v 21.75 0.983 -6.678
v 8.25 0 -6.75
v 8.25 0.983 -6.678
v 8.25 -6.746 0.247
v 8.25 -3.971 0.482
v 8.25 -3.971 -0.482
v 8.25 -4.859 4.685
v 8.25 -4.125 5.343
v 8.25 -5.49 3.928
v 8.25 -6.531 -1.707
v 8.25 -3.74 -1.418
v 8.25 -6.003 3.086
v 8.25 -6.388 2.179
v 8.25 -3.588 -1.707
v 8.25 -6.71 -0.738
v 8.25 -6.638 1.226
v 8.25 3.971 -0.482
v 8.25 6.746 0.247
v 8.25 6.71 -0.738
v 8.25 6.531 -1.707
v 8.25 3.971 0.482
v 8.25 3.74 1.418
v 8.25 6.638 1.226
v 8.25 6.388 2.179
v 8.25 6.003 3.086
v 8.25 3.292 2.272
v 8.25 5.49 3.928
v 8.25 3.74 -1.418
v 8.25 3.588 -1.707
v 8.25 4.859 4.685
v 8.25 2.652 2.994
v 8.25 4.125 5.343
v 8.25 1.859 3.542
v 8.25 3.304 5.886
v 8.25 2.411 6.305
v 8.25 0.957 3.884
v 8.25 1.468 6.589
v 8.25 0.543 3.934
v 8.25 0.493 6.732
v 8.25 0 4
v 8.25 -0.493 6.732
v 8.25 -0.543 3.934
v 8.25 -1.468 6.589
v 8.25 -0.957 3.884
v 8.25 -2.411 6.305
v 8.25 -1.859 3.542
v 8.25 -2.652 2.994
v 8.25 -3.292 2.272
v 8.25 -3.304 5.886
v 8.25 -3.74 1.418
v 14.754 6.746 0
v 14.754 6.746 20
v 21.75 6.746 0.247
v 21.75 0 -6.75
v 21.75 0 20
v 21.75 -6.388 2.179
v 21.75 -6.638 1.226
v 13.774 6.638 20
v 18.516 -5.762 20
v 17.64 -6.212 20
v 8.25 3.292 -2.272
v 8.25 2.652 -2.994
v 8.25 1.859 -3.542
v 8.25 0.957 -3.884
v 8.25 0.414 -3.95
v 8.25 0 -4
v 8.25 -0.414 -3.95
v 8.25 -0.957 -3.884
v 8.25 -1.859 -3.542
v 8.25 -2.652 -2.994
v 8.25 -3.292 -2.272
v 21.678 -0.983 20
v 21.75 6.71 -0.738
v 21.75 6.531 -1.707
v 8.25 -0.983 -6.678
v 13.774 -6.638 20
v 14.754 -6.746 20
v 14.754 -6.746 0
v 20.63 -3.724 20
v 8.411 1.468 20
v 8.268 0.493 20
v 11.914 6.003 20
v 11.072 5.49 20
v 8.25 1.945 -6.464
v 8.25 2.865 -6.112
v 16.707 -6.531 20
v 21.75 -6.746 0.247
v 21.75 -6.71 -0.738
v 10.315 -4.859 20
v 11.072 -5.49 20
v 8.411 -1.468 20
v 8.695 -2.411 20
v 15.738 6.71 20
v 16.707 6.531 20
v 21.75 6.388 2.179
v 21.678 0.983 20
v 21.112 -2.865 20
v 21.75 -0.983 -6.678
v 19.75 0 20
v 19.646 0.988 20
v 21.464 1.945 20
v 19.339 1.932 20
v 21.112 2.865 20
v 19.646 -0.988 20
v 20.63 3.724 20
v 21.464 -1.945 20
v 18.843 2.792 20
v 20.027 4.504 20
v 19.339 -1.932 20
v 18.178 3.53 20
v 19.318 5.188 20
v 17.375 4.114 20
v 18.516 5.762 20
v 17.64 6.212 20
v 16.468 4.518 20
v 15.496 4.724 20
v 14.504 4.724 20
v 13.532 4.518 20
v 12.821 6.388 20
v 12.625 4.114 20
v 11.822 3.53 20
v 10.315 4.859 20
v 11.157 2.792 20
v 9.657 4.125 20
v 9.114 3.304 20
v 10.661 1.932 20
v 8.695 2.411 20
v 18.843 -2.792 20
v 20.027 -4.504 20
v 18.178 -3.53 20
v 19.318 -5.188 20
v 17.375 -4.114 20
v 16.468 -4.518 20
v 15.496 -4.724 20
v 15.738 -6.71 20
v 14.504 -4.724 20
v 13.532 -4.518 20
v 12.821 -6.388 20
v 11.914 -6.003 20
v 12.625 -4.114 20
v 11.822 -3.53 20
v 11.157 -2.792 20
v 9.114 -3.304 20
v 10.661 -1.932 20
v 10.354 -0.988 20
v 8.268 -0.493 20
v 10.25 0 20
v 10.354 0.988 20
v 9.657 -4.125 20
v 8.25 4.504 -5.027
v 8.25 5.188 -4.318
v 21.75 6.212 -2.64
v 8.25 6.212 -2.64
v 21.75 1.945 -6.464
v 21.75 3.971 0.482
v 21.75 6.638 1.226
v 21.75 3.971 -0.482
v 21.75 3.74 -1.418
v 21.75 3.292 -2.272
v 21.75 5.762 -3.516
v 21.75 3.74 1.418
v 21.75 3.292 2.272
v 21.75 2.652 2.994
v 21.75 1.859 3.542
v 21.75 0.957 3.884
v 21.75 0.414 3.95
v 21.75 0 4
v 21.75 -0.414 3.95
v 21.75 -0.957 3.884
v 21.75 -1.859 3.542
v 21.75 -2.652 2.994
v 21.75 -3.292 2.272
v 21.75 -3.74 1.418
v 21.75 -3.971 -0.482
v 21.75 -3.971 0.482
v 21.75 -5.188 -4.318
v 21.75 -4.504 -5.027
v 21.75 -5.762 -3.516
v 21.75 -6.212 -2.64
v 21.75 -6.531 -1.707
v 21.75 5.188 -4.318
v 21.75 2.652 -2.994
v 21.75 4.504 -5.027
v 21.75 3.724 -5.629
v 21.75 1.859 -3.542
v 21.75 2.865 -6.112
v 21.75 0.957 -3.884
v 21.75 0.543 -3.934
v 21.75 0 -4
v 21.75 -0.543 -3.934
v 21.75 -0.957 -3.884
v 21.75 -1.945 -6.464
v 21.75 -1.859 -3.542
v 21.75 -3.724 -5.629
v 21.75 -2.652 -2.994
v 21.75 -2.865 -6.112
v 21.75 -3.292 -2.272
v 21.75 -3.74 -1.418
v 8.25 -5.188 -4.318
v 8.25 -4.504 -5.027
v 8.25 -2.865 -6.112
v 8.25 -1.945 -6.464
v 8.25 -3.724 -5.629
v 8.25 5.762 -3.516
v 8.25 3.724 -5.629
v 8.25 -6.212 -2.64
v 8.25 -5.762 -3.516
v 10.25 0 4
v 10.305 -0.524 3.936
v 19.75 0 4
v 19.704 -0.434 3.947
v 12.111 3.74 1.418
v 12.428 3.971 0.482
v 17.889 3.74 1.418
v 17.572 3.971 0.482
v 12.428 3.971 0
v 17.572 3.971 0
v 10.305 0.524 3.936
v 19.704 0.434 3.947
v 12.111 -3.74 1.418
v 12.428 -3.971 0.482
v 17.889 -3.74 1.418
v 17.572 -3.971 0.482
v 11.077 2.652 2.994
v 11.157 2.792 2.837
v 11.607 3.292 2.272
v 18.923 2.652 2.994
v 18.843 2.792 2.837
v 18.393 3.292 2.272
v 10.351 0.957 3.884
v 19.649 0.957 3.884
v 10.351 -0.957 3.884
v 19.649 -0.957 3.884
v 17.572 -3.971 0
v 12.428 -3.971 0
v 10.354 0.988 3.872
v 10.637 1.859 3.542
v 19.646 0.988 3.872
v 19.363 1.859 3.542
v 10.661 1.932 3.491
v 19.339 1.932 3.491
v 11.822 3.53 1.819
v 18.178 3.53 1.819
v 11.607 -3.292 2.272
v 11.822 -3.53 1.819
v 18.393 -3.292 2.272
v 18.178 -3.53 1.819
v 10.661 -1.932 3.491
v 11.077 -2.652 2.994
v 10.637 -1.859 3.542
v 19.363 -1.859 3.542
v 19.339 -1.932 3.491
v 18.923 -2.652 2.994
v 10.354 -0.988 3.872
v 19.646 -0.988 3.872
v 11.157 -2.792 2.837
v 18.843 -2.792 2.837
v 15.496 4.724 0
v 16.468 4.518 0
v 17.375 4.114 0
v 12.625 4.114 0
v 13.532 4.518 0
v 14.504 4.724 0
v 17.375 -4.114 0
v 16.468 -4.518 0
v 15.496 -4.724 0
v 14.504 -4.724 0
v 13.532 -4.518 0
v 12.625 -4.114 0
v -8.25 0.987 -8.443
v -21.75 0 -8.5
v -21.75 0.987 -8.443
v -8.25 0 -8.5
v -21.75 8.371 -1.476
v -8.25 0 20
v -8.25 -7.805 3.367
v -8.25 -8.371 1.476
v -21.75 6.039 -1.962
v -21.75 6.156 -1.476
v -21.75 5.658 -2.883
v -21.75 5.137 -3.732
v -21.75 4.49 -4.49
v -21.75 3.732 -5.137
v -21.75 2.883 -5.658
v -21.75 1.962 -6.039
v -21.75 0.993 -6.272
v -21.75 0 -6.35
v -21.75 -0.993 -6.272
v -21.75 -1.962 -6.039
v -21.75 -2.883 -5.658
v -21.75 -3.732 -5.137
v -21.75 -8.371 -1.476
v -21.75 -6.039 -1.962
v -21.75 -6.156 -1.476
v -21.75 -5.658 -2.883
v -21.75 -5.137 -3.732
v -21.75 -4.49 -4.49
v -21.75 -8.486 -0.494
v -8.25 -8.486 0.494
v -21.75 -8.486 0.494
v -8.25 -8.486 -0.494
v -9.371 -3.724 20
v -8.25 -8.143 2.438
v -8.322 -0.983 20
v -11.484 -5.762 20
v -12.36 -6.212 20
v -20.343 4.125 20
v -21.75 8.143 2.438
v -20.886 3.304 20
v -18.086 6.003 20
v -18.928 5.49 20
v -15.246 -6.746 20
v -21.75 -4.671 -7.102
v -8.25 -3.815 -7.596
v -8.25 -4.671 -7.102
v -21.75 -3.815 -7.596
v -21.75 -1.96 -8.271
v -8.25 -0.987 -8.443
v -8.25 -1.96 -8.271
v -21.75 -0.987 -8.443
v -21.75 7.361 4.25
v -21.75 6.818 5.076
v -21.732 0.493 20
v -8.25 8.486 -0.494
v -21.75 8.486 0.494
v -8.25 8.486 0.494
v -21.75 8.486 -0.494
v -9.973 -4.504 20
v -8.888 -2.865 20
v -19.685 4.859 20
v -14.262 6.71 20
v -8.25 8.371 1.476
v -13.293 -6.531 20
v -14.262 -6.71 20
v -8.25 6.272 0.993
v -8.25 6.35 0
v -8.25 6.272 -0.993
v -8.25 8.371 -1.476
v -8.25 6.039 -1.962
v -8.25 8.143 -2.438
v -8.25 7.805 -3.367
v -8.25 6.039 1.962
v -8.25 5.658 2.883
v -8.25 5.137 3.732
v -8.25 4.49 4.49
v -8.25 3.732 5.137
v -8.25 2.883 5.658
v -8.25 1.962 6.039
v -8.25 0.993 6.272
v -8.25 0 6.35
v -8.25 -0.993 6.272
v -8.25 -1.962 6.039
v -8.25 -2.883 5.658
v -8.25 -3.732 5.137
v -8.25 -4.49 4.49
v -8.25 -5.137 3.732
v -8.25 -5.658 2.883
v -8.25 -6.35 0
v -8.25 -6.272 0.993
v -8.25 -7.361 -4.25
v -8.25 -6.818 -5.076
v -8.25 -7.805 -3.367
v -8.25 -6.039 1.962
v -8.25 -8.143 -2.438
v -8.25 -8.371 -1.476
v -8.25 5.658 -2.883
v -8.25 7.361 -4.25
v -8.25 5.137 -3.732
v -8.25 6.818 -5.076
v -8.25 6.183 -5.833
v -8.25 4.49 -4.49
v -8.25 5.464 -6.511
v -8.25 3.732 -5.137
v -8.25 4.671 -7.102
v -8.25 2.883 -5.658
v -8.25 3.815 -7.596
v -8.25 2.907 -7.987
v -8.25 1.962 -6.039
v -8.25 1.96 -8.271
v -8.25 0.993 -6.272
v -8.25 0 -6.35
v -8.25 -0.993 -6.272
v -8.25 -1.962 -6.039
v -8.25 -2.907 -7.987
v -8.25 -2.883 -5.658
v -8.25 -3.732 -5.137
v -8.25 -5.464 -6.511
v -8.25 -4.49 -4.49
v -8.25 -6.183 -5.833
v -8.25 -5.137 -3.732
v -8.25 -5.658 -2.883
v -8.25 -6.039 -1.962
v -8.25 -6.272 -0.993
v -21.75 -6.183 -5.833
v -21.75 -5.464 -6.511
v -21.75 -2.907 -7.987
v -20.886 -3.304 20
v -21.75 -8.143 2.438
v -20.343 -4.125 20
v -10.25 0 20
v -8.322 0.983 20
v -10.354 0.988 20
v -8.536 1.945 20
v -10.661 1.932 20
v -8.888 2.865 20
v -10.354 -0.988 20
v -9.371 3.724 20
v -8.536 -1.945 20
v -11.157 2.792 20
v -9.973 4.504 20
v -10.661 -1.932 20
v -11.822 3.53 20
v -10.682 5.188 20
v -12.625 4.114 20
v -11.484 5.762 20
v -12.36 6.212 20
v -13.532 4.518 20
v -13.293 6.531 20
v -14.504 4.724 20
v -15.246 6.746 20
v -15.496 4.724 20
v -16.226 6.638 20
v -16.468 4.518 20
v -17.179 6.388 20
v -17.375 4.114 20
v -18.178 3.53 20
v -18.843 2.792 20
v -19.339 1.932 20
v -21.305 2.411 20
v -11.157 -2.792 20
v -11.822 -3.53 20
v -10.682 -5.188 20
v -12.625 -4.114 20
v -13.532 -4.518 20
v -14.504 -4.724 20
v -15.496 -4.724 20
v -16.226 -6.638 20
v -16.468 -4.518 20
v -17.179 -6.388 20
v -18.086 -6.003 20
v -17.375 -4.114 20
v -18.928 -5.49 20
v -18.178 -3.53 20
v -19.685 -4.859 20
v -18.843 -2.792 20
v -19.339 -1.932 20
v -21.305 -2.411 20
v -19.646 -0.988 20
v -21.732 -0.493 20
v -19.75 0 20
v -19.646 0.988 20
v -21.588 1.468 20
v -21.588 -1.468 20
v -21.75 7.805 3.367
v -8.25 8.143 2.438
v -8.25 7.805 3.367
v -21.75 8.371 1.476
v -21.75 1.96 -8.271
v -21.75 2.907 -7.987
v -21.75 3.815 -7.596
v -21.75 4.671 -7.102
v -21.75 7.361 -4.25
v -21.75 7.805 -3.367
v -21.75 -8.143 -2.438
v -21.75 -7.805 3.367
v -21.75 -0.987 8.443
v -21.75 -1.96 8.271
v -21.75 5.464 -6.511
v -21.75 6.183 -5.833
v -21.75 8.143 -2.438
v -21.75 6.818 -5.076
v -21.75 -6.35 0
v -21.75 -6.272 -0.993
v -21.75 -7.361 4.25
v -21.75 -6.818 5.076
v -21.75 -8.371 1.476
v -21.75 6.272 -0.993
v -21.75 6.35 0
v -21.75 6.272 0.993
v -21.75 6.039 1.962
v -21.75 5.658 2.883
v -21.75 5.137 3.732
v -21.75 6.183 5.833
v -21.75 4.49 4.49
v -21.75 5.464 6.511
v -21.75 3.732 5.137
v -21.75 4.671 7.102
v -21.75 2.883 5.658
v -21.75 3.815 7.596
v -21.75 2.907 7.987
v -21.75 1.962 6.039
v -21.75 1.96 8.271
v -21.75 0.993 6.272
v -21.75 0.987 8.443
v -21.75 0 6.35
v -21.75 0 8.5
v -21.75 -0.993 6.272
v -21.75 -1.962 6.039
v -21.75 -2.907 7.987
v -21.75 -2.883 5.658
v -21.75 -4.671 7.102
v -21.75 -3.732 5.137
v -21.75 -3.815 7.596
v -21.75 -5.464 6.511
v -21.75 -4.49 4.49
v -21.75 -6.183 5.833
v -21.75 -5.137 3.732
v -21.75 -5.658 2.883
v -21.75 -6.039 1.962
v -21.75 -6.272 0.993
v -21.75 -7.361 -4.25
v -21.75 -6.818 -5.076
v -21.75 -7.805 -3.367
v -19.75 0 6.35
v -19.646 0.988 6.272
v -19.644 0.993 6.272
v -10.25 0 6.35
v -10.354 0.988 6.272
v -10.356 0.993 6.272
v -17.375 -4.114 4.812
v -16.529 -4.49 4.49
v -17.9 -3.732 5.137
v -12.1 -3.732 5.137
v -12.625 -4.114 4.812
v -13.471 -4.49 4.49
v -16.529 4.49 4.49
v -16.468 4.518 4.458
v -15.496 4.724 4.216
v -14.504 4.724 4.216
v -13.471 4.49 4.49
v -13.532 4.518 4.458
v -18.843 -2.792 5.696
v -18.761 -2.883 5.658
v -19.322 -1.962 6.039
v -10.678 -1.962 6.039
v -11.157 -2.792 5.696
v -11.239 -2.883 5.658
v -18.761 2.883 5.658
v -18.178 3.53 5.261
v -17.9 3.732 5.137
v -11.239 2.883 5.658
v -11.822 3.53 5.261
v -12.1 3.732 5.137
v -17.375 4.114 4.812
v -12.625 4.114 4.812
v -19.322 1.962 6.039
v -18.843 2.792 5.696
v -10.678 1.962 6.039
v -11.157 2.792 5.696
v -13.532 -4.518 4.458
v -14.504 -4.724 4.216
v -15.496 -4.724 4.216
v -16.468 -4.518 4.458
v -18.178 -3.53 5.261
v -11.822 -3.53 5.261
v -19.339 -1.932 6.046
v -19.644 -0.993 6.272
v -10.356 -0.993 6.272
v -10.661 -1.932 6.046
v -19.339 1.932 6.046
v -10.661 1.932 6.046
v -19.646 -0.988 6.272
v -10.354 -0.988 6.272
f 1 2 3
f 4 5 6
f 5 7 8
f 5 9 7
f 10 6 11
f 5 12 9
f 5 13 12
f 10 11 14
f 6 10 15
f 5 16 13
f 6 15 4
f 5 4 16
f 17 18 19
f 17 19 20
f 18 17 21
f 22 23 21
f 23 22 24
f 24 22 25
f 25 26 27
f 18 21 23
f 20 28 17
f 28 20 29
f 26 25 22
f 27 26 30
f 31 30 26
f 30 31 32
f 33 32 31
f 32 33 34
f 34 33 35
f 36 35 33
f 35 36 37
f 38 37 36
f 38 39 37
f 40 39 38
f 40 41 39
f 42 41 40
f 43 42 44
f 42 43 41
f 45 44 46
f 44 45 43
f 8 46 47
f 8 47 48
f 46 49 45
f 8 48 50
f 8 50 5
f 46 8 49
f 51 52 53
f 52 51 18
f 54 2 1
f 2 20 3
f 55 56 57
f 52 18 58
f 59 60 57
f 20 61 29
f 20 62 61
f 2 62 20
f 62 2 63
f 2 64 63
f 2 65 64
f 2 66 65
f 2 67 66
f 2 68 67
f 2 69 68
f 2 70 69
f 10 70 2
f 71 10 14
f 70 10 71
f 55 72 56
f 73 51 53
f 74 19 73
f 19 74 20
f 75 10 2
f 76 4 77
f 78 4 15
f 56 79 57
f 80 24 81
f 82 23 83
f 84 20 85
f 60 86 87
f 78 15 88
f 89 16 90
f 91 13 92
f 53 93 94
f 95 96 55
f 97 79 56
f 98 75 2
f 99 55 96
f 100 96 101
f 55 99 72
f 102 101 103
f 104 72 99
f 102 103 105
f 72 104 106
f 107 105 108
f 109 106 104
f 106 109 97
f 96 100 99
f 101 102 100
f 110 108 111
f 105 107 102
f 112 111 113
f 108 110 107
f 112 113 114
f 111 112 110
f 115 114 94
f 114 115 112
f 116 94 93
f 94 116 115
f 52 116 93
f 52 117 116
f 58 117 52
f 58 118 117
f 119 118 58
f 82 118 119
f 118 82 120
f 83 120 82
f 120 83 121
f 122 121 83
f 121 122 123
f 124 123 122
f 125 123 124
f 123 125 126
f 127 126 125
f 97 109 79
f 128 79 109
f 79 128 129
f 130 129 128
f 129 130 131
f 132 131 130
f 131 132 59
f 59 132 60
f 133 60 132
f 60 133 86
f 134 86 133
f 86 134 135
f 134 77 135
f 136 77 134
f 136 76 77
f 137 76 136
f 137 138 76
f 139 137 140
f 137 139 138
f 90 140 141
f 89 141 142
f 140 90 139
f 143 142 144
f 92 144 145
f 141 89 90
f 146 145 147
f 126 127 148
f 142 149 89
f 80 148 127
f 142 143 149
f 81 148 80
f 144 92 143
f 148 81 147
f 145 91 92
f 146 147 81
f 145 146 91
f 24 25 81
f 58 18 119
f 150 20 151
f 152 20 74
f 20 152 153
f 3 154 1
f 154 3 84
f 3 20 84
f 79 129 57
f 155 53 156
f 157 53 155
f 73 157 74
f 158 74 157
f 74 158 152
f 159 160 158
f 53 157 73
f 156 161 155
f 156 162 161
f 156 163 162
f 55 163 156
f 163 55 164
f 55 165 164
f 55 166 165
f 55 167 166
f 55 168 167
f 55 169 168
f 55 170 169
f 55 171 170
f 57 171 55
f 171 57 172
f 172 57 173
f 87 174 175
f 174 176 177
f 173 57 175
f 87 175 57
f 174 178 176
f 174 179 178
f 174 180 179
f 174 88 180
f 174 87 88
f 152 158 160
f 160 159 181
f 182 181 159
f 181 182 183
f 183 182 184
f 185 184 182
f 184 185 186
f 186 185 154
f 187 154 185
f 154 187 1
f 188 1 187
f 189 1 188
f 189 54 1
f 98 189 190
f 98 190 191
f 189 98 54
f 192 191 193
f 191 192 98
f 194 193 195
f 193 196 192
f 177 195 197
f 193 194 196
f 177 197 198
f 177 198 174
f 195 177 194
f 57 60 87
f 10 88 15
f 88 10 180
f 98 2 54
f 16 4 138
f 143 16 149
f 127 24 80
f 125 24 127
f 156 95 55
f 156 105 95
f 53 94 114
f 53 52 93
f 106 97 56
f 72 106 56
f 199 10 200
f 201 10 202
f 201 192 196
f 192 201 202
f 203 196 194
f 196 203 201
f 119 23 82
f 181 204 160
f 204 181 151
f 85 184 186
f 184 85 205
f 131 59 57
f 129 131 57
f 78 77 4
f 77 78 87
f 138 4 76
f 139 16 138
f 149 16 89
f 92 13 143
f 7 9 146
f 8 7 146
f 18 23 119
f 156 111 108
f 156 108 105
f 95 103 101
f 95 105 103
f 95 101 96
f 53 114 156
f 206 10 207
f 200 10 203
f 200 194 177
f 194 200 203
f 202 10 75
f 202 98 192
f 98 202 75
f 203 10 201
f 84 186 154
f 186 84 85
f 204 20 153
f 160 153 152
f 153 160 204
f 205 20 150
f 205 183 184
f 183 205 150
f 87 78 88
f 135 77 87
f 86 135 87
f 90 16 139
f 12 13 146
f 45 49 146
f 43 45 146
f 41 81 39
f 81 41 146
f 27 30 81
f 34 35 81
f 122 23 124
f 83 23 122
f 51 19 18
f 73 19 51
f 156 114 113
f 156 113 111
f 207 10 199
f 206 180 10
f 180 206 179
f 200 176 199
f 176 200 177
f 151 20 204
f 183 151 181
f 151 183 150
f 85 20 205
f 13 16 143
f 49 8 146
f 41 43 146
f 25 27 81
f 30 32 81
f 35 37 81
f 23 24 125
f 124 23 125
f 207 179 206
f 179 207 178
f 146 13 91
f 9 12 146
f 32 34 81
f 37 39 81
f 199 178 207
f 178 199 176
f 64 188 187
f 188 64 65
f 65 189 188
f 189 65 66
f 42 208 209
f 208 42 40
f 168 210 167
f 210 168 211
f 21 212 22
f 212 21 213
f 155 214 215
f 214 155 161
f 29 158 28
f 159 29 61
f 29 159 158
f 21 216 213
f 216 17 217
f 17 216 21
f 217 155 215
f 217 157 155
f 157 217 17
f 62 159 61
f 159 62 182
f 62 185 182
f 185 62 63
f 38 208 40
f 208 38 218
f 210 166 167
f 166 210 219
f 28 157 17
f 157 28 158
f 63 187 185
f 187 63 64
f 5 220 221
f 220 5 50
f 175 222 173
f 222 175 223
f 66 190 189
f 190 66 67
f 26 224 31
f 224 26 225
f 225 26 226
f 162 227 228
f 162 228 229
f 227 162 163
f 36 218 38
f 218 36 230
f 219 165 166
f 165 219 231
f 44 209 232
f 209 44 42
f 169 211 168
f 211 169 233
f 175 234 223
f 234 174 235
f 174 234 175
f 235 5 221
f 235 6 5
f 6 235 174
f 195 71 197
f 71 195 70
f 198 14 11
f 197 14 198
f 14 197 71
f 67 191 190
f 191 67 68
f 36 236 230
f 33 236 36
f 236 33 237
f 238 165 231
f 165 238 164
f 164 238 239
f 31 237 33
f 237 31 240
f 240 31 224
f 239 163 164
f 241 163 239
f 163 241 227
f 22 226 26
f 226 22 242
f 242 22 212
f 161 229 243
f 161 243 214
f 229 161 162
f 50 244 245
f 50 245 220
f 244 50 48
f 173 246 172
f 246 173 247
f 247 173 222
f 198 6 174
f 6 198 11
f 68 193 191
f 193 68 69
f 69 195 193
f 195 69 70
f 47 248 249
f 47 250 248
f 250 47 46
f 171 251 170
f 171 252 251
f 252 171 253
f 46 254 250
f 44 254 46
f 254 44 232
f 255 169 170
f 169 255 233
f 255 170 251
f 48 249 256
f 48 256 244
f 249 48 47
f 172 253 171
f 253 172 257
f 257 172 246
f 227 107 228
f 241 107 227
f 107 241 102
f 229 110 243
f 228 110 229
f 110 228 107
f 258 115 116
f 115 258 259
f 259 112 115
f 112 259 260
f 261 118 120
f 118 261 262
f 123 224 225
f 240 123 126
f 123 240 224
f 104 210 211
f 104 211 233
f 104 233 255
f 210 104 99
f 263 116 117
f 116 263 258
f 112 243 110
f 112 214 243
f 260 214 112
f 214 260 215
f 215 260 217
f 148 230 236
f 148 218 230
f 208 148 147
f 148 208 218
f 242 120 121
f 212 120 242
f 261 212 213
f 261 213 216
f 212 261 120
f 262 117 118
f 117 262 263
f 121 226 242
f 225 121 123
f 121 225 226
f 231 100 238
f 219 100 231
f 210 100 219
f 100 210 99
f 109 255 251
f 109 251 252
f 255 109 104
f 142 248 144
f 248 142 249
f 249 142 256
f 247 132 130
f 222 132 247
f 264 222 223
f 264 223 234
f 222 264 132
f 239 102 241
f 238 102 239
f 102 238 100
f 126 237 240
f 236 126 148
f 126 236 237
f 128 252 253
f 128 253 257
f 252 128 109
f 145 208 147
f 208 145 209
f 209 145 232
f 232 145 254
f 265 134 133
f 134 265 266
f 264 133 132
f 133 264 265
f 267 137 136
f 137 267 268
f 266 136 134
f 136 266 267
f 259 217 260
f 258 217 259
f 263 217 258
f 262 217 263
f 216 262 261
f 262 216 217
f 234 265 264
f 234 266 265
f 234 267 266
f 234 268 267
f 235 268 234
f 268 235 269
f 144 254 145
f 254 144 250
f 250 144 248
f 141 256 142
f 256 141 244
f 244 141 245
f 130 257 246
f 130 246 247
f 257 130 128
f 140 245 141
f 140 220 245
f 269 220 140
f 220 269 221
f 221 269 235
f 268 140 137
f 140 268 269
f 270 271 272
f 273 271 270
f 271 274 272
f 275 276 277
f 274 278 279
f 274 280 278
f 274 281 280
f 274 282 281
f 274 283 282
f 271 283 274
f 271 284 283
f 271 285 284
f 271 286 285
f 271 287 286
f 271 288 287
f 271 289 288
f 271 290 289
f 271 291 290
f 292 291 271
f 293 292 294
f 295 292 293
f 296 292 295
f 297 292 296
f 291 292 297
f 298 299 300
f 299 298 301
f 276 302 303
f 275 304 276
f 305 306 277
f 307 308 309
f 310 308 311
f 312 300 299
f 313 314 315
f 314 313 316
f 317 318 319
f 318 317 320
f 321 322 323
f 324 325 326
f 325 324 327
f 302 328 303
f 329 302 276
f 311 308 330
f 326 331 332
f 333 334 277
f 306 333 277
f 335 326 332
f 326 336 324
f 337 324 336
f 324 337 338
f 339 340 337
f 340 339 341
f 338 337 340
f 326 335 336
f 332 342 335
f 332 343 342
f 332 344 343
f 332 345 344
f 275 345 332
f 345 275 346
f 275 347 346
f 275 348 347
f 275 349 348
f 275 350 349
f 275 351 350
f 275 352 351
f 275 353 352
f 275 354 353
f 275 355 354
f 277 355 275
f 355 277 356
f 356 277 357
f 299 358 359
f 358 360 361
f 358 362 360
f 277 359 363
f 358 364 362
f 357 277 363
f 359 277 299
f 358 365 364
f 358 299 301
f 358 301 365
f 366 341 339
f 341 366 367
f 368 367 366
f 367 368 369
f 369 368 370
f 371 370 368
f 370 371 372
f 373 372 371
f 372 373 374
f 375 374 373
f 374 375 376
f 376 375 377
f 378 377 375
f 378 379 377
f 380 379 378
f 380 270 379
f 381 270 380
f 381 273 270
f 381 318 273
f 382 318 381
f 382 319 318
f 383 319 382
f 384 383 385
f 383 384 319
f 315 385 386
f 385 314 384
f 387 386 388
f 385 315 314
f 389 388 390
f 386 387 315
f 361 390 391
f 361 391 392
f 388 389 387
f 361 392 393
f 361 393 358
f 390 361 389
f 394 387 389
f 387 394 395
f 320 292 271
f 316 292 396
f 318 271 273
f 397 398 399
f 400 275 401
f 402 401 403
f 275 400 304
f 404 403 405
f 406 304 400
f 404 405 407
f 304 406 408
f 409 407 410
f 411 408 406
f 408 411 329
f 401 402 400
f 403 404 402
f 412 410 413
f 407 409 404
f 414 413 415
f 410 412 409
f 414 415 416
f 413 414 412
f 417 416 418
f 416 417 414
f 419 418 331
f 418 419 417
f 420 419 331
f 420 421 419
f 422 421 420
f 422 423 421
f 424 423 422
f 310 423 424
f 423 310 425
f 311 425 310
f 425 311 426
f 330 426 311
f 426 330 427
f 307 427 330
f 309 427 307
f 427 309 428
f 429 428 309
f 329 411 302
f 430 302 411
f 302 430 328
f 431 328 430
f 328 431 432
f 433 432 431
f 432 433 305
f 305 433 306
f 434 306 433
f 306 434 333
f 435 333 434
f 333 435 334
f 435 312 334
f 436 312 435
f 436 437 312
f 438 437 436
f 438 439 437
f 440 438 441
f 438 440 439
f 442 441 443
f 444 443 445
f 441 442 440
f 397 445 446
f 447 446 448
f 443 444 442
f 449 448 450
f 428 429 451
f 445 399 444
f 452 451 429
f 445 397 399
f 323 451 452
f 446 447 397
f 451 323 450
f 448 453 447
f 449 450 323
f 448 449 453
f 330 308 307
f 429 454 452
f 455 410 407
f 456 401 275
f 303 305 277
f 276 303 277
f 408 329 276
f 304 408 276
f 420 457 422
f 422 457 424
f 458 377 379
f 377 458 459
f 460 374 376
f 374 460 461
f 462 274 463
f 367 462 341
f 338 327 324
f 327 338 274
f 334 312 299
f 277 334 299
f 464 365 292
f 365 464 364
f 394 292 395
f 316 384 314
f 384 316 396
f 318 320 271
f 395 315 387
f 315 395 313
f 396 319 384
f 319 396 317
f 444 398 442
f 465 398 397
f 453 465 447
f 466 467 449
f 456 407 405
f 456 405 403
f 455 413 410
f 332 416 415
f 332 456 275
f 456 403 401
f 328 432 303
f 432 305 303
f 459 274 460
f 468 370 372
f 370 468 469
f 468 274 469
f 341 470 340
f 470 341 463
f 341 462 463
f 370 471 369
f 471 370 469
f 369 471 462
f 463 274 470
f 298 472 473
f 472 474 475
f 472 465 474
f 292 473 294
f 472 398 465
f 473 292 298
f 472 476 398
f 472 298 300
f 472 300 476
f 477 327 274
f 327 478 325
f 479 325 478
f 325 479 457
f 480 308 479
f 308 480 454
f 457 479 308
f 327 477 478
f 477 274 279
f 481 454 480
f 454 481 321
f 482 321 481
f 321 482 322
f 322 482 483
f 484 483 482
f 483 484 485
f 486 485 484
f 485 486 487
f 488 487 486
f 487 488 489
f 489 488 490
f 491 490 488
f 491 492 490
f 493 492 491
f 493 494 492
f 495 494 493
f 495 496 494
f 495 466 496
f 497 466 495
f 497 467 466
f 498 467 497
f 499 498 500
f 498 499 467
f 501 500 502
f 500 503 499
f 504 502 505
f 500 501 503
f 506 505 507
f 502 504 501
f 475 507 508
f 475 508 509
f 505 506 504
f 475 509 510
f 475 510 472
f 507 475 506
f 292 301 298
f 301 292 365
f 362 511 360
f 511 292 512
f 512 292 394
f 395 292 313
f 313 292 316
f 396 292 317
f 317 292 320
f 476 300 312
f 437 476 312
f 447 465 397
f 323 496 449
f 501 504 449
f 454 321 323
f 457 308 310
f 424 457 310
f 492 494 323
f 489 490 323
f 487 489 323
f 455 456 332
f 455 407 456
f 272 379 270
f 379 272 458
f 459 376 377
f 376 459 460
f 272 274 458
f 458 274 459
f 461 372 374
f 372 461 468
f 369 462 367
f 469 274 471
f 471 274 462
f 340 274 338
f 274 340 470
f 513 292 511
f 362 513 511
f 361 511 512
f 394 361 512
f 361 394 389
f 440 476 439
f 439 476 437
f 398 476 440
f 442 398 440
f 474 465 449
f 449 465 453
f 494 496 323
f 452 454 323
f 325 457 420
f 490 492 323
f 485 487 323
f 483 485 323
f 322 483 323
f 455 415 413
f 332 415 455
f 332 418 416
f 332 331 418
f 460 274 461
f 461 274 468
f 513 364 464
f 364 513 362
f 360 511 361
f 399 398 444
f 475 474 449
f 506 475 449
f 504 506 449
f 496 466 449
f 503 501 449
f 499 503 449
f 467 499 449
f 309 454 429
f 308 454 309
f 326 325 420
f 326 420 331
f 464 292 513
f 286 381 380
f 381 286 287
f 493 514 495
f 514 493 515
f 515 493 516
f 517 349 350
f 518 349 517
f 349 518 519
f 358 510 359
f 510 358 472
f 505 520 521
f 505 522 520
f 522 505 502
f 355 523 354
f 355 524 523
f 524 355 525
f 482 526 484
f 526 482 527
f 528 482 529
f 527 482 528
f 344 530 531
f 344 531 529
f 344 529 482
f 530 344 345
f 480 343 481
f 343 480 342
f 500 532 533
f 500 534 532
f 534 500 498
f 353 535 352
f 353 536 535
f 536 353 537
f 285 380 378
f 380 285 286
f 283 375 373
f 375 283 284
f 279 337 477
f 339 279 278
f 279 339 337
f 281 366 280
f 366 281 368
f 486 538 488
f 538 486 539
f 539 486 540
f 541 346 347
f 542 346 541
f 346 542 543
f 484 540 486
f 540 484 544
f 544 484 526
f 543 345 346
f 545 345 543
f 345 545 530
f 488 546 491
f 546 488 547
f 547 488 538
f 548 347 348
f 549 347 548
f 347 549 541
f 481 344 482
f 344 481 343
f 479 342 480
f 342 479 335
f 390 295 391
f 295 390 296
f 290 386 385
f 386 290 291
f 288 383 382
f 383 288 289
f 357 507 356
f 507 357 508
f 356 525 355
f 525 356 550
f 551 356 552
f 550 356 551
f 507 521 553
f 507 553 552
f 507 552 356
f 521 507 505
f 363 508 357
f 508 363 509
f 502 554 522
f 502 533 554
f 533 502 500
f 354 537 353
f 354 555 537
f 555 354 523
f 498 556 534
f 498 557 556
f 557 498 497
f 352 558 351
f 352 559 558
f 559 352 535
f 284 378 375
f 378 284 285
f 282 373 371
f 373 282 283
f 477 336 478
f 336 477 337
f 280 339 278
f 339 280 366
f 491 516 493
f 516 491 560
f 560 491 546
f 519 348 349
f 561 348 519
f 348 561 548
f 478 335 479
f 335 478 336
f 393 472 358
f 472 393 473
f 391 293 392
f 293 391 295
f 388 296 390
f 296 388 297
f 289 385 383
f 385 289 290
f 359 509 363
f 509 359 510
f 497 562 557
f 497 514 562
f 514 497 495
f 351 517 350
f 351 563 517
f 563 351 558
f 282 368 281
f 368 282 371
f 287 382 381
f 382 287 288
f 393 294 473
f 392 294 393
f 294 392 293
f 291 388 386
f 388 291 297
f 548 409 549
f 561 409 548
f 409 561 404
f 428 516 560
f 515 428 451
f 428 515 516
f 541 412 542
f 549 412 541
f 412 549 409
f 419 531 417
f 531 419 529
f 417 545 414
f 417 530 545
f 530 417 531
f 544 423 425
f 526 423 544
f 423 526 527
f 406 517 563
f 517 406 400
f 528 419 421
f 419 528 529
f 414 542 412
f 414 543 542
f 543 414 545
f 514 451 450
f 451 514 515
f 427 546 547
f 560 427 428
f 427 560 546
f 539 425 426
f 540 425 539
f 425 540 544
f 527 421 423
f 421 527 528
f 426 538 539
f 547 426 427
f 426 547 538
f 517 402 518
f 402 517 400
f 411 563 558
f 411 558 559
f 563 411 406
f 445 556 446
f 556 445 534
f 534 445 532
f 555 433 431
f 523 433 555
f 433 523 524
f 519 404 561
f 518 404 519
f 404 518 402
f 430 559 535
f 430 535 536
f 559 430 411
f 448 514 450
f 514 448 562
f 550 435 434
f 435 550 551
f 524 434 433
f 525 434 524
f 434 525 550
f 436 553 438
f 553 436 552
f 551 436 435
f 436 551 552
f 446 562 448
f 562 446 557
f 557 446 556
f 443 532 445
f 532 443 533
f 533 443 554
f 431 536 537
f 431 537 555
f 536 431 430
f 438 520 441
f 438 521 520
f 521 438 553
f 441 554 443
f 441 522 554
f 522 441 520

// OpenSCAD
$fs = 1;
$fa = 6;

translate([15, 0]) difference() {
  hull() {
    _rx() cylinder(d=13.5, h=13.5, center=true);
    cylinder(d=13.5, h=20, center=false);
  }
  _rx() cylinder(d=8, h=100, center=true);
  cylinder(d=9.5, h=100, center=false);
}

translate([-15, 0]) difference() {
  hull() {
    _rx() cylinder(d=17, h=13.5, center=true);
    cylinder(d=13.5, h=20, center=false);
  }
  _rx() cylinder(d=12.7, h=100, center=true);
  cylinder(d=9.5, h=100, center=false);
}

module _ry() {
    rotate([90,0]) children();
}
module _rx() {
    rotate([0,90]) children();
}
